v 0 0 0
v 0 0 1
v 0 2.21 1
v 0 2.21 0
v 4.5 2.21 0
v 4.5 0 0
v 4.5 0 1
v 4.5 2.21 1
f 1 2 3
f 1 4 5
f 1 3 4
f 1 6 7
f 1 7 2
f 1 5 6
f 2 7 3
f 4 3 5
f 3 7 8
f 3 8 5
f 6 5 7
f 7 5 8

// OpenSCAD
/* Warning, this is a very basic generator with a lot of approximation 
input data : [SOT-89, BTX, 4.50x2.21mm, 3, , E, C04-00029E]
generated by com.zoubworld.electronics.cad.model3d.Basic
Date : Sun Feb 15 10:50:48 CET 2026
*/

//body
color("black")
translate([0,0,0])
cube([4.5,2.21,1.0], center=false);
